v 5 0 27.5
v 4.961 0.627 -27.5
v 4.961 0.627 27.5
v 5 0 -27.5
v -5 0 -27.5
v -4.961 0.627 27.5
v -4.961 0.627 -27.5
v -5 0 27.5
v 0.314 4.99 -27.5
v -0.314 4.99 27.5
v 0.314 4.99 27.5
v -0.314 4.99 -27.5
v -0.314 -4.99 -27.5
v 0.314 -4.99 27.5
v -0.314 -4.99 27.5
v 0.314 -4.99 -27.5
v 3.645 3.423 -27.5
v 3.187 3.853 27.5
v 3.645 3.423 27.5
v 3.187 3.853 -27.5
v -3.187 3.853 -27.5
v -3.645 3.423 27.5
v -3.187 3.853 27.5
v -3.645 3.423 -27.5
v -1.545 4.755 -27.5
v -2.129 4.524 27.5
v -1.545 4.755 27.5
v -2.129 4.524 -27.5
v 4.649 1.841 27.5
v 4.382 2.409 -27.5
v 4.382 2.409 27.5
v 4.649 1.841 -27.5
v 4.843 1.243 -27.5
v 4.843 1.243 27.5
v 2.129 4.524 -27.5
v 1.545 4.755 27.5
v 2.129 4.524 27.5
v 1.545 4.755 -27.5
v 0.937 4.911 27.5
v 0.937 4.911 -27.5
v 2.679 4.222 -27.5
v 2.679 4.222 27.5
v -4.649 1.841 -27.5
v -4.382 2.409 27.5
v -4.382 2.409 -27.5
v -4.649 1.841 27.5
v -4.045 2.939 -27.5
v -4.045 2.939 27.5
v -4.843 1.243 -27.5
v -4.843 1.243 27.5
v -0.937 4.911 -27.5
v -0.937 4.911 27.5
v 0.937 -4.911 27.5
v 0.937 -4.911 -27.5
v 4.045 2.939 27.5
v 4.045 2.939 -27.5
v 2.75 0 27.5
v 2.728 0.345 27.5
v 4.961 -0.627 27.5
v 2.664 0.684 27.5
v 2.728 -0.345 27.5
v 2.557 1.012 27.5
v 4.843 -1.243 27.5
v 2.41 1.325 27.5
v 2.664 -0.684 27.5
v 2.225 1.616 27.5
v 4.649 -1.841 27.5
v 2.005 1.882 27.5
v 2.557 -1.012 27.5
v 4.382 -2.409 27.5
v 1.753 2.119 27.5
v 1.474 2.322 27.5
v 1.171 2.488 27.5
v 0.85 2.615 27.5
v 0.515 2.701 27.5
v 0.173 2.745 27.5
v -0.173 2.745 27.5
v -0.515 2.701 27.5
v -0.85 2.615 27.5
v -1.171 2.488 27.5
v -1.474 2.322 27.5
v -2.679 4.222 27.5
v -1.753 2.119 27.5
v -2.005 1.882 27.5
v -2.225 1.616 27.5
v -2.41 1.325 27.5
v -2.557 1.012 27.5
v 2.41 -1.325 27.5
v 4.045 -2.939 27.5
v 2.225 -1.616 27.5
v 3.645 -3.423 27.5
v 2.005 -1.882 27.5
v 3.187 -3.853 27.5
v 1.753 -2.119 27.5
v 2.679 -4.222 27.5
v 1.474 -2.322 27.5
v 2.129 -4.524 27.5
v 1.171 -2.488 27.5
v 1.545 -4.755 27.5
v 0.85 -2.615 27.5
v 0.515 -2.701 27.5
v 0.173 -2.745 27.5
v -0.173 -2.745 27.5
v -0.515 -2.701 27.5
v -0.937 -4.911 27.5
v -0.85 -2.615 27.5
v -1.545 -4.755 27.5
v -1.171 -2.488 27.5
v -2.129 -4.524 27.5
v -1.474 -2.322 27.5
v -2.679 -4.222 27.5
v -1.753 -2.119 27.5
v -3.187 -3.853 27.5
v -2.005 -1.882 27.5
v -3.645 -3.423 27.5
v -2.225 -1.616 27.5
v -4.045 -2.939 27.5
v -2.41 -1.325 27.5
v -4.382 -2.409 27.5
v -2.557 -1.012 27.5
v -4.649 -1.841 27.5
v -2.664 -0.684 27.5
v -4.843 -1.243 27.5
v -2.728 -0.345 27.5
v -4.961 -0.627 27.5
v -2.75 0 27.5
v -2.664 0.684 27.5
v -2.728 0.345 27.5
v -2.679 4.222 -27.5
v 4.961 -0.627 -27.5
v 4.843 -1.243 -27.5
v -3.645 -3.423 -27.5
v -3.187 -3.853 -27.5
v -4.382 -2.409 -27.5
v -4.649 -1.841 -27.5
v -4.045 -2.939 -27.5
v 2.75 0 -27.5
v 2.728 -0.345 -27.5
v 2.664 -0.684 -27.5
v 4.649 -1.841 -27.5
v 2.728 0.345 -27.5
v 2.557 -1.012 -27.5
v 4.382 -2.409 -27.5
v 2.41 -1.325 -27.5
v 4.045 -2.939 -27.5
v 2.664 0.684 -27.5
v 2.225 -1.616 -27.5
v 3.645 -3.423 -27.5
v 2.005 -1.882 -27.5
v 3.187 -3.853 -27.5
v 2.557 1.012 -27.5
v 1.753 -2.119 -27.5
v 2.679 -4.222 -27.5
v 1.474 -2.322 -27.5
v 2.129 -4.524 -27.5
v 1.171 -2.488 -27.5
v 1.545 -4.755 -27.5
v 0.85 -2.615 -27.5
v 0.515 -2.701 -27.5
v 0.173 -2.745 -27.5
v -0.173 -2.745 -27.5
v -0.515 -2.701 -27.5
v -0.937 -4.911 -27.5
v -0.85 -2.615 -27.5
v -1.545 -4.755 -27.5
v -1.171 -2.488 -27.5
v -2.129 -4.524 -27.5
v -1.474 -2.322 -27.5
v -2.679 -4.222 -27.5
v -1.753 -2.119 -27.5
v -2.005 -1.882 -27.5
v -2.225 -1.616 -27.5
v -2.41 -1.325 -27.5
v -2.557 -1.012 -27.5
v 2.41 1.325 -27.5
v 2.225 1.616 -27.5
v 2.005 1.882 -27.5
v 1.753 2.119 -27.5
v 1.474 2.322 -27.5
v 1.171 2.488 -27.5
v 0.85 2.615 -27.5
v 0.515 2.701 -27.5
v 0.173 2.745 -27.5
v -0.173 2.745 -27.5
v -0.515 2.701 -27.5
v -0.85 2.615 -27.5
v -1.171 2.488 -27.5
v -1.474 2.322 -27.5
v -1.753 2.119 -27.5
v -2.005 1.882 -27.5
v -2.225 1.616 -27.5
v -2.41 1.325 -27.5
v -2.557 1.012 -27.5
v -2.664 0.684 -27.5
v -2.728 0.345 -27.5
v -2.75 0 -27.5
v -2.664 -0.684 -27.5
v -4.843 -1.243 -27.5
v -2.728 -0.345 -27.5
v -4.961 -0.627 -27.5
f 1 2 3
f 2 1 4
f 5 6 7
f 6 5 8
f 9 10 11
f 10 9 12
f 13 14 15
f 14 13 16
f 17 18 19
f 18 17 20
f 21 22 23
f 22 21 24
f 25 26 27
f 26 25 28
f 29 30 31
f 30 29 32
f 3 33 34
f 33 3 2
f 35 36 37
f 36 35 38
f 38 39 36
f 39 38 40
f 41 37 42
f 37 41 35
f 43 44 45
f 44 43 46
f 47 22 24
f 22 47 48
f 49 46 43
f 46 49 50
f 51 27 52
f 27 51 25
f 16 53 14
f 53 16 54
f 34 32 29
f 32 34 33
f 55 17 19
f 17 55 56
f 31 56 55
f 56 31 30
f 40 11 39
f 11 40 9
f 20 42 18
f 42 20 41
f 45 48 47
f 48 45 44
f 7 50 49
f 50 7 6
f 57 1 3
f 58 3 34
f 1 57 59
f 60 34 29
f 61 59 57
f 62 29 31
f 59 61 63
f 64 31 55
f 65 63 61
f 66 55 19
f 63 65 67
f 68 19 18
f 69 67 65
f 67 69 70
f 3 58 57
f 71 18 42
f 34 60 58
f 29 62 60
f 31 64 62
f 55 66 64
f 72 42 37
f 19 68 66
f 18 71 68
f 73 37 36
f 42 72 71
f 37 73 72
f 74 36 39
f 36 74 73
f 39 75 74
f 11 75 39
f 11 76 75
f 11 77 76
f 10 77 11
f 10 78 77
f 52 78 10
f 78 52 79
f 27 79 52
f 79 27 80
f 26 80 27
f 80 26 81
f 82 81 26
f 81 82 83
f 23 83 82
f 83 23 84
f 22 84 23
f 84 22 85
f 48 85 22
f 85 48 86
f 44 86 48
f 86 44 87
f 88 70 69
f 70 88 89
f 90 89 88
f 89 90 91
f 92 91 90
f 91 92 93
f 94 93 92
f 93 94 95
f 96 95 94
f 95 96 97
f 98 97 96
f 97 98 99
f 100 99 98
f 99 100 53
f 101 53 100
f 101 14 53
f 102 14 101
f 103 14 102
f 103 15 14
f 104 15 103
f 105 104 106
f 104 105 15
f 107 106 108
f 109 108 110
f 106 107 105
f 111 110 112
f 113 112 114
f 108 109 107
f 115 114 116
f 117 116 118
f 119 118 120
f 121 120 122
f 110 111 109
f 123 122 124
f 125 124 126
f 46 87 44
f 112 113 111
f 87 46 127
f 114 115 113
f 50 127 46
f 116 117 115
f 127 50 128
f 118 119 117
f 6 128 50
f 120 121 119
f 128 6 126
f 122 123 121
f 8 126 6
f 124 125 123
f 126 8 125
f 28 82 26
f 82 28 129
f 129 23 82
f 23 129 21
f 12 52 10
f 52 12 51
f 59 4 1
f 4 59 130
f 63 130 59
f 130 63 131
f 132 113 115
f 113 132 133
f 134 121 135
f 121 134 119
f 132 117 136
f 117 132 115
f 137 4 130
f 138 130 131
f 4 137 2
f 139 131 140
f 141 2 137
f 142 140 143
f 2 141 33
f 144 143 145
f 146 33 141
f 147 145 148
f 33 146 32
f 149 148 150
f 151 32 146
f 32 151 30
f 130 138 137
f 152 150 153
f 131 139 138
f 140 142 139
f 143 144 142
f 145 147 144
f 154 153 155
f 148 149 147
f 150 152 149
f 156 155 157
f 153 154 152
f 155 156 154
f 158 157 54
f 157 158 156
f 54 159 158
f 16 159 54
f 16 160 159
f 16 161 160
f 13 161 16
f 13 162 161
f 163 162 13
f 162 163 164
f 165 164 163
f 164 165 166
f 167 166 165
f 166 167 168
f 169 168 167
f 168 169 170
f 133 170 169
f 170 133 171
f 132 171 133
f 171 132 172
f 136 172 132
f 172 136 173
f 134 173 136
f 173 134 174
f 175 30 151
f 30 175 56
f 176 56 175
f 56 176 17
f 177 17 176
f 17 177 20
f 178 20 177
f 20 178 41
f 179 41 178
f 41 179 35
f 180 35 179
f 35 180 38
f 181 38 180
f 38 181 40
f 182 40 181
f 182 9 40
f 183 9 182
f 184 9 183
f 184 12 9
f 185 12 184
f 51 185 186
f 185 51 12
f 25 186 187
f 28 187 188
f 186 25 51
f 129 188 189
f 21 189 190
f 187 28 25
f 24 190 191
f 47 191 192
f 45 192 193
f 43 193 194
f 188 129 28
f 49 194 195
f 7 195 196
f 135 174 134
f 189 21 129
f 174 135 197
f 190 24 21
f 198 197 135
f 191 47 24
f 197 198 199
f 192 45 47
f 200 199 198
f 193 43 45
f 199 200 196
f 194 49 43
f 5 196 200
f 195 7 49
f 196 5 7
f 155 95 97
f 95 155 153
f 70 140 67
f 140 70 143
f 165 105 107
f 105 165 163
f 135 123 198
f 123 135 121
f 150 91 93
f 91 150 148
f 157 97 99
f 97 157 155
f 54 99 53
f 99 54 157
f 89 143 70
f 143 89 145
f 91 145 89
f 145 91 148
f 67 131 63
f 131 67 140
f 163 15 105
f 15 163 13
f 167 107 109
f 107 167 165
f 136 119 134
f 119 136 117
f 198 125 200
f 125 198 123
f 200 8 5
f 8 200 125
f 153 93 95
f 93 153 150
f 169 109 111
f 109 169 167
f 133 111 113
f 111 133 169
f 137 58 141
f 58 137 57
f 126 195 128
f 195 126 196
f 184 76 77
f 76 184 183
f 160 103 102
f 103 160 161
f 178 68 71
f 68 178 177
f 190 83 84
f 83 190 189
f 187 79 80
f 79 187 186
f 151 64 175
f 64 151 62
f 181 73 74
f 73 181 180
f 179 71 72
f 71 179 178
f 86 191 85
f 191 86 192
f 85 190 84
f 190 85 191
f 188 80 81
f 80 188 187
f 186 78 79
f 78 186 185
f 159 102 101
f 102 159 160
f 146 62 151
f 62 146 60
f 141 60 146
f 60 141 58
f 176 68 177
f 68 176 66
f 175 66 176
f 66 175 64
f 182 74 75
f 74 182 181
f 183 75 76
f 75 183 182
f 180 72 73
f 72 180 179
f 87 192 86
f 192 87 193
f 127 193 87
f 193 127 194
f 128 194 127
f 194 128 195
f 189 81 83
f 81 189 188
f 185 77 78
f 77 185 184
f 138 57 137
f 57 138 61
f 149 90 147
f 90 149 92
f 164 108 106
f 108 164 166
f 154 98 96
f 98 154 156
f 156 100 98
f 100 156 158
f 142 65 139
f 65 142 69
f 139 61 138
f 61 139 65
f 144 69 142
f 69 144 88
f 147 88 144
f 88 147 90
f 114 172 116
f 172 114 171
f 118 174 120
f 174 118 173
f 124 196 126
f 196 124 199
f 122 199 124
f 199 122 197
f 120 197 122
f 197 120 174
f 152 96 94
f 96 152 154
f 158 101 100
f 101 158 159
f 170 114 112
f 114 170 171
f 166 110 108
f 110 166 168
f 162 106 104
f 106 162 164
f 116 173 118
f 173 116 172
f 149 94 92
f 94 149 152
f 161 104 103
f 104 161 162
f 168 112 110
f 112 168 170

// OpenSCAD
$fn = 50;


difference() {
	union() {
		translate(v = [0, 0, -27.5000000000]) {
			cylinder(h = 55, r = 5.0000000000);
		}
	}
	union() {
		translate(v = [0, 0, -100.0000000000]) {
			cylinder(h = 200, r = 2.7500000000);
		}
	}
}
